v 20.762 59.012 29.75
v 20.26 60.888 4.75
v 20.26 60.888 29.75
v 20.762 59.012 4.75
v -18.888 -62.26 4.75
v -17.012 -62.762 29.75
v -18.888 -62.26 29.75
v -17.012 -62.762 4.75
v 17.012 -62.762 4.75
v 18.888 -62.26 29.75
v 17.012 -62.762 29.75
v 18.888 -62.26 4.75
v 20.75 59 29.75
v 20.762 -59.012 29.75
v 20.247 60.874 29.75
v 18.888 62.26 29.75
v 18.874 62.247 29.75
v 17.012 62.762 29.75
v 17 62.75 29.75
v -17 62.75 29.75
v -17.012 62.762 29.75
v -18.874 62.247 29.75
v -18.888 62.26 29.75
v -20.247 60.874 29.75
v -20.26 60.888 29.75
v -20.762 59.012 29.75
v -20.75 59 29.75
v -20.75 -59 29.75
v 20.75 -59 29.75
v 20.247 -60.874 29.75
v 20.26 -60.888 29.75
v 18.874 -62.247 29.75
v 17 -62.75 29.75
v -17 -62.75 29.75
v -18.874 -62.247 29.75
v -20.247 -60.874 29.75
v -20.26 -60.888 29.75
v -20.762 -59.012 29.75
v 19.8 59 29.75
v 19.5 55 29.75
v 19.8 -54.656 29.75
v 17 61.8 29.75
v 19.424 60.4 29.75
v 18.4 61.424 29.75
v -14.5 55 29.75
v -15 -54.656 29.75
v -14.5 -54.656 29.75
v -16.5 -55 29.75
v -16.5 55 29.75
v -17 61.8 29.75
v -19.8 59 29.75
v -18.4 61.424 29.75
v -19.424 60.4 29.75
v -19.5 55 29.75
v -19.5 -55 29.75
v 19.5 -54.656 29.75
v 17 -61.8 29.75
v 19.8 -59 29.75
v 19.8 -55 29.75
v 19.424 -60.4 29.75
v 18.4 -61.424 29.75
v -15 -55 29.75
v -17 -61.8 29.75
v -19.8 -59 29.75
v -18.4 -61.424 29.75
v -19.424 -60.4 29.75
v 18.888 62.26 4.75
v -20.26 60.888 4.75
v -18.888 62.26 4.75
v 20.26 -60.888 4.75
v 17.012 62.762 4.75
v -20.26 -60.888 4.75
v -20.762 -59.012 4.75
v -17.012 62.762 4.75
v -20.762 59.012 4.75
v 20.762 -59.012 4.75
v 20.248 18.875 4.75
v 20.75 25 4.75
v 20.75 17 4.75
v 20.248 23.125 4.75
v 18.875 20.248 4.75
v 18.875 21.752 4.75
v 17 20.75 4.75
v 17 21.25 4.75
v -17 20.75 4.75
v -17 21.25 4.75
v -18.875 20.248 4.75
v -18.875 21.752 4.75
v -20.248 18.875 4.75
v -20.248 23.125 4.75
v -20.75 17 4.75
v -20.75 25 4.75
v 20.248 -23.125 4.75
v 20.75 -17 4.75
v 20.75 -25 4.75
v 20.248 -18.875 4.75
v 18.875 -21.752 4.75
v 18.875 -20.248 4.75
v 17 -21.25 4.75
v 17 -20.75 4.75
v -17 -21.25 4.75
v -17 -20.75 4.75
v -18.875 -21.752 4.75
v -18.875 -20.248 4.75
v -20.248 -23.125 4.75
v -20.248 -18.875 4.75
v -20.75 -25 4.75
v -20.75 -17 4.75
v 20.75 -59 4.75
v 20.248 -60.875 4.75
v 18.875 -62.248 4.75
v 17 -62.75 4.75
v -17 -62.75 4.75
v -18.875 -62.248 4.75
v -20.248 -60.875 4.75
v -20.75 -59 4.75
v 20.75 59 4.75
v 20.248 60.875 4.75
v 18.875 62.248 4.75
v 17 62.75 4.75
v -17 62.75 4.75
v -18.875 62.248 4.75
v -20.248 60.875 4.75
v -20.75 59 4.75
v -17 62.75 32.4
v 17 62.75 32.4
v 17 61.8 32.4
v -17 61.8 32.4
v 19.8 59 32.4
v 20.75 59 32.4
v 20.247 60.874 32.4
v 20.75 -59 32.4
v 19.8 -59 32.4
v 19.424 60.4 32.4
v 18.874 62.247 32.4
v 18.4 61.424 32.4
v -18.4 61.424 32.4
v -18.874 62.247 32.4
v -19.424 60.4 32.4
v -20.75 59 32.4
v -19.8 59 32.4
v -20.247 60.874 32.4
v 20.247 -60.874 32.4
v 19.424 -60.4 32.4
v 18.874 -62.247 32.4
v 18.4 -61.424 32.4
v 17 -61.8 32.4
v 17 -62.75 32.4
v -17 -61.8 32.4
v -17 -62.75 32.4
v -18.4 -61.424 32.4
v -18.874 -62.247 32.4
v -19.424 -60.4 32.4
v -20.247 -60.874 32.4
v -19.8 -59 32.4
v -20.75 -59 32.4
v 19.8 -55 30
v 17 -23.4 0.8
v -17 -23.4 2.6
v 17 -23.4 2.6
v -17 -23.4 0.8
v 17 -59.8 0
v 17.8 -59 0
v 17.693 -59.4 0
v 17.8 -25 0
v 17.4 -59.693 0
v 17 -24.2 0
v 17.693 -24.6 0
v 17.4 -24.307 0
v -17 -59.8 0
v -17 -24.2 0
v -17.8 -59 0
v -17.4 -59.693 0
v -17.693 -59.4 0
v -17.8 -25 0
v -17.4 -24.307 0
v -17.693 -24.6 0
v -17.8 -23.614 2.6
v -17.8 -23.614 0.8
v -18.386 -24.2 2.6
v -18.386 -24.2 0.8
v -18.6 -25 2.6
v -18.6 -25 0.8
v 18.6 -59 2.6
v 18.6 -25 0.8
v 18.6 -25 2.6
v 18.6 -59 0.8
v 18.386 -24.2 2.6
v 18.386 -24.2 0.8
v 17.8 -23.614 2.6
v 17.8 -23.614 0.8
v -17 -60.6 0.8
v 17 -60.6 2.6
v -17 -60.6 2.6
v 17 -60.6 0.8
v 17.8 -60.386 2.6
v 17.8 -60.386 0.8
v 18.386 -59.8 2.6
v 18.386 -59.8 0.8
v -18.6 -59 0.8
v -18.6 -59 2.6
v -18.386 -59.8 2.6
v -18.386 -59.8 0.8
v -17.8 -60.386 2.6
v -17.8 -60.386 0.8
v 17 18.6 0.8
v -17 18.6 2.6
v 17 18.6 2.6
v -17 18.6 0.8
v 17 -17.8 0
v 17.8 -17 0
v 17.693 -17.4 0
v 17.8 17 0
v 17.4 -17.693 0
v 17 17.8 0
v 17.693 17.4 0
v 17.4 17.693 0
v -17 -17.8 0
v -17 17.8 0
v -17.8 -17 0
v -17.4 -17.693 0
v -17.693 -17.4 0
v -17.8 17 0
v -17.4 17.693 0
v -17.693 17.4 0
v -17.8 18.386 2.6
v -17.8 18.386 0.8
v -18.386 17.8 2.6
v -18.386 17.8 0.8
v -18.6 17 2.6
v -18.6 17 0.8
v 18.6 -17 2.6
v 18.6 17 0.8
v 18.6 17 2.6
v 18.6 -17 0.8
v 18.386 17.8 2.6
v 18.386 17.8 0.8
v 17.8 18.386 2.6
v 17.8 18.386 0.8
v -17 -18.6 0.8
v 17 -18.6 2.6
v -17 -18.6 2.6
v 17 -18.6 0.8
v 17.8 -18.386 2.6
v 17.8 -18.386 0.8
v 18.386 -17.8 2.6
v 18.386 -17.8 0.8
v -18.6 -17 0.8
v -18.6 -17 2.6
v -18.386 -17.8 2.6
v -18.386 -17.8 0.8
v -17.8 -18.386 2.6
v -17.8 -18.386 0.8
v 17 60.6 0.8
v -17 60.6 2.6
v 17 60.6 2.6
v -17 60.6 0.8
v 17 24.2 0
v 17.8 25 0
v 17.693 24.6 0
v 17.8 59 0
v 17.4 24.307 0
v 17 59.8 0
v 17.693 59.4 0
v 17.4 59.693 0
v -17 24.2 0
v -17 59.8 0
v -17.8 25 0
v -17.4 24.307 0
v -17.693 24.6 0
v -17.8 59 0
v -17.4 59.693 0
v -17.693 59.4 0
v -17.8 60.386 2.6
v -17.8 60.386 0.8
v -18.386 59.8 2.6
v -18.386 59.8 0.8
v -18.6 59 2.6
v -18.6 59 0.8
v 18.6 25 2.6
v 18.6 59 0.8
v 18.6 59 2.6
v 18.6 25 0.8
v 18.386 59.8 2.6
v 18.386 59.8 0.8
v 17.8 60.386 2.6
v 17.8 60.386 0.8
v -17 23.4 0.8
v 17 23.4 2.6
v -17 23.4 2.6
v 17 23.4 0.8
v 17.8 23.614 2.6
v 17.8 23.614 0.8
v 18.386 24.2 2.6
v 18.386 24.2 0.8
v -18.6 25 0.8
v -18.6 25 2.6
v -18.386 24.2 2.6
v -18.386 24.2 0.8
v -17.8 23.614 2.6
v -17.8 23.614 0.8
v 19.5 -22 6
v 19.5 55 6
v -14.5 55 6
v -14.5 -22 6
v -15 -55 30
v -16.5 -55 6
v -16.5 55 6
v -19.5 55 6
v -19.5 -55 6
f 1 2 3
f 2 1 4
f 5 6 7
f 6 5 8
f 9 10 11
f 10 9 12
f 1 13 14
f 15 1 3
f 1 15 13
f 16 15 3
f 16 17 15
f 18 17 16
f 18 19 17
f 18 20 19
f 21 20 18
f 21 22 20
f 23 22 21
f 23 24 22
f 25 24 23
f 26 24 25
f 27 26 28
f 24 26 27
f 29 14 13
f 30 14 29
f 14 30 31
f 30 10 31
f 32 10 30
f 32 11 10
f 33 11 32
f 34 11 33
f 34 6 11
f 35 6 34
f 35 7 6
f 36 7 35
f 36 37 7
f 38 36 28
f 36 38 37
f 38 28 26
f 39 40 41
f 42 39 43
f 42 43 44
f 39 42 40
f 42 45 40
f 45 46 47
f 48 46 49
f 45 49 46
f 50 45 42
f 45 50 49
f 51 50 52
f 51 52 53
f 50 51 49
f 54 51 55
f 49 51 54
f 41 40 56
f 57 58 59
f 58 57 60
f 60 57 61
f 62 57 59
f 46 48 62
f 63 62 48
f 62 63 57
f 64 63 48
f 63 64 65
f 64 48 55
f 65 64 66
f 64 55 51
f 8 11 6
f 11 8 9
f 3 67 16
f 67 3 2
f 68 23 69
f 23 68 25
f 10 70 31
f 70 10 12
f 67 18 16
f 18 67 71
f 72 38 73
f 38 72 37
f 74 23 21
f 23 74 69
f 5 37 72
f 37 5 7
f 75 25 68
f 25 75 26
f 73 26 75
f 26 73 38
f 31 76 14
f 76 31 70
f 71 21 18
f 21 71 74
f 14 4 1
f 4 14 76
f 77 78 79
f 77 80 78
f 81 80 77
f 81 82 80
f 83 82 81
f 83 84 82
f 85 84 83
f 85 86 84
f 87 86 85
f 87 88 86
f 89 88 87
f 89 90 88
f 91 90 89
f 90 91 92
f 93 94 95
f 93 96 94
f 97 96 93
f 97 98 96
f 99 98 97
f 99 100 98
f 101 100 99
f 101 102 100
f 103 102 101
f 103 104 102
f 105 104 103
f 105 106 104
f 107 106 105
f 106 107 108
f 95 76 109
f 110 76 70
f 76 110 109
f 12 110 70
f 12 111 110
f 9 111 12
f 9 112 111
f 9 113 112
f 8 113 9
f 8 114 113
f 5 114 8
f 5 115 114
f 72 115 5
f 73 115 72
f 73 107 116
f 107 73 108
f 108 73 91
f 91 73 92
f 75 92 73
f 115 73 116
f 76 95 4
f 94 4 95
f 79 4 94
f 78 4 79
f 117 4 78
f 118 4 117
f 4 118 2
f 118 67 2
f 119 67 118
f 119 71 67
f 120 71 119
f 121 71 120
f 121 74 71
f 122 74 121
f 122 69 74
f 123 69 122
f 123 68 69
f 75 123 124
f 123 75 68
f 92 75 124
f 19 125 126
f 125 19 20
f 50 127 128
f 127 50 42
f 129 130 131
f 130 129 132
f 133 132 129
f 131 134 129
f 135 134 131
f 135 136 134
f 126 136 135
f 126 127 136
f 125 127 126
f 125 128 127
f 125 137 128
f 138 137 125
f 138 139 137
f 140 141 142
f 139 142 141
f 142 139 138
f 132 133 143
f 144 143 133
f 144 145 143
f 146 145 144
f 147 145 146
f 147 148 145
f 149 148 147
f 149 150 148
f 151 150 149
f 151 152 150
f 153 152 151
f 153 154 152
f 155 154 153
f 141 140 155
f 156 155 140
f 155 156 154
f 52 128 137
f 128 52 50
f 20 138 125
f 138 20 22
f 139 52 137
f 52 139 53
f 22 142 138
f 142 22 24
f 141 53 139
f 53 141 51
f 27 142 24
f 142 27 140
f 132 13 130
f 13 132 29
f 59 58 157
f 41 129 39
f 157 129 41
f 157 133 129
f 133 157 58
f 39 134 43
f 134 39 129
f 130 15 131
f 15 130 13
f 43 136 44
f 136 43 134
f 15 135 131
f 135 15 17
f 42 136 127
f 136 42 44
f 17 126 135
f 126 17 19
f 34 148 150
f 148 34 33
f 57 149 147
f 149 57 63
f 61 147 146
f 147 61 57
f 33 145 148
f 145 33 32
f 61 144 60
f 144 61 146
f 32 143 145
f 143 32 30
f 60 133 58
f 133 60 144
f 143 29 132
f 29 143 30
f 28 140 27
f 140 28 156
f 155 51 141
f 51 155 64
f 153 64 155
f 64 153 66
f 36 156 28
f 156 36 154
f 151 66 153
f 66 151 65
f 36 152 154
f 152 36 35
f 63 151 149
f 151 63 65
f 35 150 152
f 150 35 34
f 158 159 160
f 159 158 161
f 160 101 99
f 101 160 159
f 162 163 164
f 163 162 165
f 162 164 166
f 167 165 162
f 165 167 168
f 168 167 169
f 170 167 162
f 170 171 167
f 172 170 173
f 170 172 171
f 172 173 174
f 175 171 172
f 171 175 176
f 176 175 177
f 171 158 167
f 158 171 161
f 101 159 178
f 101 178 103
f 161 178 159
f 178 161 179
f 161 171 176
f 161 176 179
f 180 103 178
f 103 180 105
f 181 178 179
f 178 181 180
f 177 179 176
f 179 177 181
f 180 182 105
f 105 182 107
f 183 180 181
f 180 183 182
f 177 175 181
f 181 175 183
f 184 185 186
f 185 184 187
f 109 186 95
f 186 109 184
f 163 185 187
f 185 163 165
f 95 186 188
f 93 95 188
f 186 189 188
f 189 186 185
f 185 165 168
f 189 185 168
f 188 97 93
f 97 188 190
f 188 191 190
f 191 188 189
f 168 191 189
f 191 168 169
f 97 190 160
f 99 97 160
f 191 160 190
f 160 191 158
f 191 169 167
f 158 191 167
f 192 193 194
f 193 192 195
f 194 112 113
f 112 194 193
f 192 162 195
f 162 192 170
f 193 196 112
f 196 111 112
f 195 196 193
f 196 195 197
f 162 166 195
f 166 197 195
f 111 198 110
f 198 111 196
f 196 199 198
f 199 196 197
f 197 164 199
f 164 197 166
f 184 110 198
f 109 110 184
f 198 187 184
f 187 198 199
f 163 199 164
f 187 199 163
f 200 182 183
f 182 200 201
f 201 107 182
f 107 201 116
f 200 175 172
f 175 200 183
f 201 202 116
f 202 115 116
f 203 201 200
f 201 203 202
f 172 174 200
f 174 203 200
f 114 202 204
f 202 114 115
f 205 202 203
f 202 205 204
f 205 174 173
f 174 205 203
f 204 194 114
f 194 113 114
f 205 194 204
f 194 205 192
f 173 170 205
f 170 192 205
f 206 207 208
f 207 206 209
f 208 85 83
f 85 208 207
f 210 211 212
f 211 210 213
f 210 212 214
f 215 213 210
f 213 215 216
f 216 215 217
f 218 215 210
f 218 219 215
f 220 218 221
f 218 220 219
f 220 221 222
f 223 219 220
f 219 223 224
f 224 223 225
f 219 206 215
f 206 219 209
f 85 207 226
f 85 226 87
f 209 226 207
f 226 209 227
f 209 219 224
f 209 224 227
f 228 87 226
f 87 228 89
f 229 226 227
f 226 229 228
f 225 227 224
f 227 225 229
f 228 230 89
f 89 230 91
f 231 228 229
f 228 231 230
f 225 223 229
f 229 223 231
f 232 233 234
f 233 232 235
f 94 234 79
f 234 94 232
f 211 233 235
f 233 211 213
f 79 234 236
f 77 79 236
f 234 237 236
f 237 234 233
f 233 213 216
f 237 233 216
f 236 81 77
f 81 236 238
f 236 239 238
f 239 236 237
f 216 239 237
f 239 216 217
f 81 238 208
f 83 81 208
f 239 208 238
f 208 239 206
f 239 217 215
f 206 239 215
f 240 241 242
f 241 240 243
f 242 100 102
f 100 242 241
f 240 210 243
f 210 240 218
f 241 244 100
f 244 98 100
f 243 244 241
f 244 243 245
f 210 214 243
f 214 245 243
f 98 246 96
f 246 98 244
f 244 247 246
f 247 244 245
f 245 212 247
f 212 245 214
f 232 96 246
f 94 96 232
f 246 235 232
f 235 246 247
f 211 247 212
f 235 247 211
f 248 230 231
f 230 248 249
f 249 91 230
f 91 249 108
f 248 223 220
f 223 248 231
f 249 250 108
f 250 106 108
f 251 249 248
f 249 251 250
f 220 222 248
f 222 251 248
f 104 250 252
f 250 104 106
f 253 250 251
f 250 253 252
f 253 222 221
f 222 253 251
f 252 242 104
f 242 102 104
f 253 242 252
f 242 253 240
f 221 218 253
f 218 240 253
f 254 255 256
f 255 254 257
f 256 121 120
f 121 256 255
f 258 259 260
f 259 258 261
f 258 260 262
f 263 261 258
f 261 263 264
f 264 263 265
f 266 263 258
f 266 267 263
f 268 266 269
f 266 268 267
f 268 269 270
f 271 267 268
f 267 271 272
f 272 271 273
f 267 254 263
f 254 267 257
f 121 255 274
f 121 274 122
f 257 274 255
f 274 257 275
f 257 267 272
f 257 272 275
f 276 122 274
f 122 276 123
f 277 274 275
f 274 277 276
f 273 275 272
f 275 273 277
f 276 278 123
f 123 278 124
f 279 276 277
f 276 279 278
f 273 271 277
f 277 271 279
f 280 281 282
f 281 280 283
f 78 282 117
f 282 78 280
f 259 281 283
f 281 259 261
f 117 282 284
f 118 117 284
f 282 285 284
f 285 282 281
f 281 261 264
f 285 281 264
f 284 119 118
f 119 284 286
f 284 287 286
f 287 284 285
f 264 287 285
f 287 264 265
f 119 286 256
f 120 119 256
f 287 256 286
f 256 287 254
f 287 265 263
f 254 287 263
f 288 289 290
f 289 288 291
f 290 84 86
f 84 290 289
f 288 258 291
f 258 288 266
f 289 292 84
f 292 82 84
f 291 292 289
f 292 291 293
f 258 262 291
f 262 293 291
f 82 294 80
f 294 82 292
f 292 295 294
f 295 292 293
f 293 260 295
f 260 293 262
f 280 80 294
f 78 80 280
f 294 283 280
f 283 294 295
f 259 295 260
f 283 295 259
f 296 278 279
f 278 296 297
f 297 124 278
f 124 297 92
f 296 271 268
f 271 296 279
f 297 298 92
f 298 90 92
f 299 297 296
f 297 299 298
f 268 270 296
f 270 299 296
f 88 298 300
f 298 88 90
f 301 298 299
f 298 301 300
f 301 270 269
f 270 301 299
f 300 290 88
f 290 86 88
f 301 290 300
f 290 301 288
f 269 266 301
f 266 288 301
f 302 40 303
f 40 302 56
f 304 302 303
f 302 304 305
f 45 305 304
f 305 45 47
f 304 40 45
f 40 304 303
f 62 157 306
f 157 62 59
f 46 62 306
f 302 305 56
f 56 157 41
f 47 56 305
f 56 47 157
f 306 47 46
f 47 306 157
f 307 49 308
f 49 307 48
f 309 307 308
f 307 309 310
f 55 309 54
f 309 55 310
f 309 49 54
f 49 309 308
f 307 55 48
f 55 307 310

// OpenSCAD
use <entrypoint.scad>
difference() {
  union() {
    difference() {
      custom_bin(gridx=1, gridy=3, height_internal=25);
      translate([-14.5, -55, 6]) cube([34, 110, 100]);
    }
    translate([-15, -55, 6])
        rotate([90, 0, 90])
            triangular_prism(leg=24, width=35, leg2=33);
  }
  translate([-19.5, -55, 6]) cube([3, 110, 100]);
}
